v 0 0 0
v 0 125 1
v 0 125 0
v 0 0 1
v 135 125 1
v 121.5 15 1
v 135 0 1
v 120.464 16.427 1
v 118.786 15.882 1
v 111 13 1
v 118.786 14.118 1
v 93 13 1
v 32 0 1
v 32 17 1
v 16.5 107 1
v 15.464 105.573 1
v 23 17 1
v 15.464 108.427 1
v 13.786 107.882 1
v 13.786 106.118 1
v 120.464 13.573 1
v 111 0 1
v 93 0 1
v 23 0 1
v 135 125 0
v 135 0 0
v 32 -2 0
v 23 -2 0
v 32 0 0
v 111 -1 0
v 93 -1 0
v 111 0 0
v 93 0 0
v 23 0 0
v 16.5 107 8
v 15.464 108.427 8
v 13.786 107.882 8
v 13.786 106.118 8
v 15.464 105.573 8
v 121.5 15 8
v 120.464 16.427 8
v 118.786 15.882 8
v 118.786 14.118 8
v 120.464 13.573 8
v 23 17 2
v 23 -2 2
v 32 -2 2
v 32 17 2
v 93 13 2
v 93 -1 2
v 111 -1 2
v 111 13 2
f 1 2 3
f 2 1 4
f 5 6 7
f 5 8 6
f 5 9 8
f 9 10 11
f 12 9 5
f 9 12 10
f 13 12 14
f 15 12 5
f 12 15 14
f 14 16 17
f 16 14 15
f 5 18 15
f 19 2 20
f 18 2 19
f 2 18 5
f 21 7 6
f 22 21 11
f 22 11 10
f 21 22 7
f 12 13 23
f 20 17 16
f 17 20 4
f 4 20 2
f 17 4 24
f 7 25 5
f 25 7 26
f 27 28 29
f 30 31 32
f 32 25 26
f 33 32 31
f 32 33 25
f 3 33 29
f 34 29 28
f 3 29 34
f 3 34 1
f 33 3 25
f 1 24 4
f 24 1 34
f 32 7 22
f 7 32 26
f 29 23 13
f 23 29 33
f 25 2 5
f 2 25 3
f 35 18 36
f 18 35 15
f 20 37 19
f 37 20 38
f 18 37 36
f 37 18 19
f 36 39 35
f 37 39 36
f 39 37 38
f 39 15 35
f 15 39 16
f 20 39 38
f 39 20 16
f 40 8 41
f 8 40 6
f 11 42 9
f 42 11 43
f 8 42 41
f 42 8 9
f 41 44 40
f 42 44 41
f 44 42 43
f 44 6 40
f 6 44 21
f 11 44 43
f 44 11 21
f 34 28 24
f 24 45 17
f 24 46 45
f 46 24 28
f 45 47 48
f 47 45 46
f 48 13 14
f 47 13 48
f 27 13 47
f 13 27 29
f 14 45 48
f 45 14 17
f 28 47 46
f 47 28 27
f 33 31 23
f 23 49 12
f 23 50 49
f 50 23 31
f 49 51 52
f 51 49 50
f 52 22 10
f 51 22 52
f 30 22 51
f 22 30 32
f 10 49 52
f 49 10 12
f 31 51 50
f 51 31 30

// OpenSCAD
// PCB actually has corners chopped but not modelling that here.
cube([135, 125, 1]);

translate([15, 107, 0]) {
    #cylinder(d=3, h=8);
}

translate([120, 15, 0]) {
    cylinder(d=3, h=8);
}

 
// Power
translate([23, -2, 0]) {
    cube([9, 19, 2]);
}


// Ethernet
translate([93, -1, 0]) {
    cube([18, 14, 2]);
}
